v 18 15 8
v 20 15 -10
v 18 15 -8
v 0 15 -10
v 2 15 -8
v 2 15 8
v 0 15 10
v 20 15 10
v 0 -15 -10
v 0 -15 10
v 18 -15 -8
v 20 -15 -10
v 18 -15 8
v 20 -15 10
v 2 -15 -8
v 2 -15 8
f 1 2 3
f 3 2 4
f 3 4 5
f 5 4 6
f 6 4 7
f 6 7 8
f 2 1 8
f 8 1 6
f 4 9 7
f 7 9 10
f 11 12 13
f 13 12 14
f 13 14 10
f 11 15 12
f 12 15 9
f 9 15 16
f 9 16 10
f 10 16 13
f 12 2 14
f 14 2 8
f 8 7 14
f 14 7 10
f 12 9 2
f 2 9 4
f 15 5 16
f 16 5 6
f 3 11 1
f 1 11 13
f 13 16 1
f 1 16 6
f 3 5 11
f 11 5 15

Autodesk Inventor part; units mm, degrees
ref_plane "YZ Plane" through (0, 0, 0) normal (1, 0, 0) x (0, 1, 0)
ref_plane "XZ Plane" through (0, 0, 0) normal (0, 1, 0) x (-1, 0, 0)
ref_plane "XY Plane" through (0, 0, 0) normal (0, 0, 1) x (1, 0, 0)
sketch "Sketch1" plane through (0, 0, 0) normal (1, 0, 0) x (0, 0, -1)
  line L0 (-10, -15) -> (10, -15)
  line L1 (10, -15) -> (10, 15)
  line L2 (10, 15) -> (-10, 15)
  line L3 (-10, 15) -> (-10, -15)
  line L4 (-10, -15) -> (10, 15) construction
  line L5 (10, -15) -> (-10, 15) construction
  point P0 (0, 0)
  dimension "d0" = 20
  dimension "d1" = 30
extrude "Extrusion1" add sketch "Sketch1" along normal blind 20
shell "Shell1" thickness 2 removed faces 2 at (6.6667, -15, 3.3333) at (6.6667, 15, -3.3333)
properties part number "finger_chamber"
